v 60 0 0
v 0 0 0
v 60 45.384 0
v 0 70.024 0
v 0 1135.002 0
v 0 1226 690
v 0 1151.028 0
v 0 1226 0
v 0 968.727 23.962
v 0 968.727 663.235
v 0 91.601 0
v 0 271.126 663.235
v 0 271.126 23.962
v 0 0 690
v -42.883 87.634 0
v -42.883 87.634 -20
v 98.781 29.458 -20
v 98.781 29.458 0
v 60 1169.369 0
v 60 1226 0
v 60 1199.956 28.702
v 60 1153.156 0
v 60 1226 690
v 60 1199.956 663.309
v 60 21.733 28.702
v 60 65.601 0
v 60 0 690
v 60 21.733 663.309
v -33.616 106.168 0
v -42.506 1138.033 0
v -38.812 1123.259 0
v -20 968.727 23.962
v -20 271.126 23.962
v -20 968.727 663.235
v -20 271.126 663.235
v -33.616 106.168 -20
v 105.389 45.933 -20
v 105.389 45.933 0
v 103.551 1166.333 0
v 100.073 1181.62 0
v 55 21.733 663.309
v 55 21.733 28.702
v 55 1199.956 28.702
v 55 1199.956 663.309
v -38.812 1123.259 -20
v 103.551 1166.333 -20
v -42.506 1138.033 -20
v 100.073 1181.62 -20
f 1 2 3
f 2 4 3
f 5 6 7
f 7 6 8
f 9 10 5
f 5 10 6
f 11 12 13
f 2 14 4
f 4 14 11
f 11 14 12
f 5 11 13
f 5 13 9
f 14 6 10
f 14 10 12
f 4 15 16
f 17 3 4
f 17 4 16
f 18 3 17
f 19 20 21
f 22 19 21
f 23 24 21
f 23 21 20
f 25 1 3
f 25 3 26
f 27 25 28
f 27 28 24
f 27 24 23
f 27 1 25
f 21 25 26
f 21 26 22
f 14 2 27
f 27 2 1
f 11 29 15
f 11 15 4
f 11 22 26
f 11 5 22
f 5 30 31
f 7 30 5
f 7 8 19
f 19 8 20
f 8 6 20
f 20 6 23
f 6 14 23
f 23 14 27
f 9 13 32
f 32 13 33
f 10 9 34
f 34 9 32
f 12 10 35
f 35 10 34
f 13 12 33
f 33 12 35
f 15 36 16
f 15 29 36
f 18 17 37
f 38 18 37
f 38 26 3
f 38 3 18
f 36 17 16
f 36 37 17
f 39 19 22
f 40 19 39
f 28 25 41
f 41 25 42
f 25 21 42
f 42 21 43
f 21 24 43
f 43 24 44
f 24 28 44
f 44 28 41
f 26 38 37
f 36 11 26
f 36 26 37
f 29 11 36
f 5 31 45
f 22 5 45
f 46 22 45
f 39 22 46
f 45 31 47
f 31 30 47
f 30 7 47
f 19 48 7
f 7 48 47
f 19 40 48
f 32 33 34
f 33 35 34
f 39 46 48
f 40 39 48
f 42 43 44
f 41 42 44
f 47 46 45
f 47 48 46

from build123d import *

# Parameters (mm, degrees)
SKETCH_W     = 1226
SKETCH_H     = 690
PAD_DEPTH    = 60
SKETCH001_W  = 1178.222099
SKETCH001_H  = 634.606854
POCKET_DEPTH = 5
SKETCH002_W  = 697.600952
SKETCH002_H  = 639.273081
PAD001_DEPTH = 20
PAD002_DEPTH = 20


with BuildPart() as part:
    # Sketch → Pad (new body)
    with BuildSketch(Plane.YZ):
        with Locations((613, 345)):
            Rectangle(SKETCH_W, SKETCH_H)
    extrude(amount=PAD_DEPTH)

    # Sketch001 (on Face6 of Pad) → Pocket (cut)
    with BuildSketch(Plane.YZ.offset(60)):
        with Locations((610.844516, 346.005472)):
            Rectangle(SKETCH001_W, SKETCH001_H)
    extrude(amount=-POCKET_DEPTH, mode=Mode.SUBTRACT)

    # Sketch002 (on Face4 of Pocket) → Pad001 (join)
    with BuildSketch(Plane(origin=(0, 0, 0), x_dir=(0, 1, 0), z_dir=(-1, 0, 0))):
        with Locations((619.926025, -343.598201)):
            Rectangle(SKETCH002_W, SKETCH002_H)
    extrude(amount=PAD001_DEPTH)

    # Sketch003 (on Face1 of Pad001) → Pad002 (join)
    with BuildSketch(Plane.YX):
        Polygon((87.634308, -42.883045), (29.457521, 98.781487), (45.932869, 105.38868), (106.168274, -33.616066), align=None)
        Polygon((1123.258545, -38.812469), (1166.333008, 103.550873), (1181.619751, 100.072845), (1138.033447, -42.506088), align=None)
    extrude(amount=PAD002_DEPTH)


solid = part.part
